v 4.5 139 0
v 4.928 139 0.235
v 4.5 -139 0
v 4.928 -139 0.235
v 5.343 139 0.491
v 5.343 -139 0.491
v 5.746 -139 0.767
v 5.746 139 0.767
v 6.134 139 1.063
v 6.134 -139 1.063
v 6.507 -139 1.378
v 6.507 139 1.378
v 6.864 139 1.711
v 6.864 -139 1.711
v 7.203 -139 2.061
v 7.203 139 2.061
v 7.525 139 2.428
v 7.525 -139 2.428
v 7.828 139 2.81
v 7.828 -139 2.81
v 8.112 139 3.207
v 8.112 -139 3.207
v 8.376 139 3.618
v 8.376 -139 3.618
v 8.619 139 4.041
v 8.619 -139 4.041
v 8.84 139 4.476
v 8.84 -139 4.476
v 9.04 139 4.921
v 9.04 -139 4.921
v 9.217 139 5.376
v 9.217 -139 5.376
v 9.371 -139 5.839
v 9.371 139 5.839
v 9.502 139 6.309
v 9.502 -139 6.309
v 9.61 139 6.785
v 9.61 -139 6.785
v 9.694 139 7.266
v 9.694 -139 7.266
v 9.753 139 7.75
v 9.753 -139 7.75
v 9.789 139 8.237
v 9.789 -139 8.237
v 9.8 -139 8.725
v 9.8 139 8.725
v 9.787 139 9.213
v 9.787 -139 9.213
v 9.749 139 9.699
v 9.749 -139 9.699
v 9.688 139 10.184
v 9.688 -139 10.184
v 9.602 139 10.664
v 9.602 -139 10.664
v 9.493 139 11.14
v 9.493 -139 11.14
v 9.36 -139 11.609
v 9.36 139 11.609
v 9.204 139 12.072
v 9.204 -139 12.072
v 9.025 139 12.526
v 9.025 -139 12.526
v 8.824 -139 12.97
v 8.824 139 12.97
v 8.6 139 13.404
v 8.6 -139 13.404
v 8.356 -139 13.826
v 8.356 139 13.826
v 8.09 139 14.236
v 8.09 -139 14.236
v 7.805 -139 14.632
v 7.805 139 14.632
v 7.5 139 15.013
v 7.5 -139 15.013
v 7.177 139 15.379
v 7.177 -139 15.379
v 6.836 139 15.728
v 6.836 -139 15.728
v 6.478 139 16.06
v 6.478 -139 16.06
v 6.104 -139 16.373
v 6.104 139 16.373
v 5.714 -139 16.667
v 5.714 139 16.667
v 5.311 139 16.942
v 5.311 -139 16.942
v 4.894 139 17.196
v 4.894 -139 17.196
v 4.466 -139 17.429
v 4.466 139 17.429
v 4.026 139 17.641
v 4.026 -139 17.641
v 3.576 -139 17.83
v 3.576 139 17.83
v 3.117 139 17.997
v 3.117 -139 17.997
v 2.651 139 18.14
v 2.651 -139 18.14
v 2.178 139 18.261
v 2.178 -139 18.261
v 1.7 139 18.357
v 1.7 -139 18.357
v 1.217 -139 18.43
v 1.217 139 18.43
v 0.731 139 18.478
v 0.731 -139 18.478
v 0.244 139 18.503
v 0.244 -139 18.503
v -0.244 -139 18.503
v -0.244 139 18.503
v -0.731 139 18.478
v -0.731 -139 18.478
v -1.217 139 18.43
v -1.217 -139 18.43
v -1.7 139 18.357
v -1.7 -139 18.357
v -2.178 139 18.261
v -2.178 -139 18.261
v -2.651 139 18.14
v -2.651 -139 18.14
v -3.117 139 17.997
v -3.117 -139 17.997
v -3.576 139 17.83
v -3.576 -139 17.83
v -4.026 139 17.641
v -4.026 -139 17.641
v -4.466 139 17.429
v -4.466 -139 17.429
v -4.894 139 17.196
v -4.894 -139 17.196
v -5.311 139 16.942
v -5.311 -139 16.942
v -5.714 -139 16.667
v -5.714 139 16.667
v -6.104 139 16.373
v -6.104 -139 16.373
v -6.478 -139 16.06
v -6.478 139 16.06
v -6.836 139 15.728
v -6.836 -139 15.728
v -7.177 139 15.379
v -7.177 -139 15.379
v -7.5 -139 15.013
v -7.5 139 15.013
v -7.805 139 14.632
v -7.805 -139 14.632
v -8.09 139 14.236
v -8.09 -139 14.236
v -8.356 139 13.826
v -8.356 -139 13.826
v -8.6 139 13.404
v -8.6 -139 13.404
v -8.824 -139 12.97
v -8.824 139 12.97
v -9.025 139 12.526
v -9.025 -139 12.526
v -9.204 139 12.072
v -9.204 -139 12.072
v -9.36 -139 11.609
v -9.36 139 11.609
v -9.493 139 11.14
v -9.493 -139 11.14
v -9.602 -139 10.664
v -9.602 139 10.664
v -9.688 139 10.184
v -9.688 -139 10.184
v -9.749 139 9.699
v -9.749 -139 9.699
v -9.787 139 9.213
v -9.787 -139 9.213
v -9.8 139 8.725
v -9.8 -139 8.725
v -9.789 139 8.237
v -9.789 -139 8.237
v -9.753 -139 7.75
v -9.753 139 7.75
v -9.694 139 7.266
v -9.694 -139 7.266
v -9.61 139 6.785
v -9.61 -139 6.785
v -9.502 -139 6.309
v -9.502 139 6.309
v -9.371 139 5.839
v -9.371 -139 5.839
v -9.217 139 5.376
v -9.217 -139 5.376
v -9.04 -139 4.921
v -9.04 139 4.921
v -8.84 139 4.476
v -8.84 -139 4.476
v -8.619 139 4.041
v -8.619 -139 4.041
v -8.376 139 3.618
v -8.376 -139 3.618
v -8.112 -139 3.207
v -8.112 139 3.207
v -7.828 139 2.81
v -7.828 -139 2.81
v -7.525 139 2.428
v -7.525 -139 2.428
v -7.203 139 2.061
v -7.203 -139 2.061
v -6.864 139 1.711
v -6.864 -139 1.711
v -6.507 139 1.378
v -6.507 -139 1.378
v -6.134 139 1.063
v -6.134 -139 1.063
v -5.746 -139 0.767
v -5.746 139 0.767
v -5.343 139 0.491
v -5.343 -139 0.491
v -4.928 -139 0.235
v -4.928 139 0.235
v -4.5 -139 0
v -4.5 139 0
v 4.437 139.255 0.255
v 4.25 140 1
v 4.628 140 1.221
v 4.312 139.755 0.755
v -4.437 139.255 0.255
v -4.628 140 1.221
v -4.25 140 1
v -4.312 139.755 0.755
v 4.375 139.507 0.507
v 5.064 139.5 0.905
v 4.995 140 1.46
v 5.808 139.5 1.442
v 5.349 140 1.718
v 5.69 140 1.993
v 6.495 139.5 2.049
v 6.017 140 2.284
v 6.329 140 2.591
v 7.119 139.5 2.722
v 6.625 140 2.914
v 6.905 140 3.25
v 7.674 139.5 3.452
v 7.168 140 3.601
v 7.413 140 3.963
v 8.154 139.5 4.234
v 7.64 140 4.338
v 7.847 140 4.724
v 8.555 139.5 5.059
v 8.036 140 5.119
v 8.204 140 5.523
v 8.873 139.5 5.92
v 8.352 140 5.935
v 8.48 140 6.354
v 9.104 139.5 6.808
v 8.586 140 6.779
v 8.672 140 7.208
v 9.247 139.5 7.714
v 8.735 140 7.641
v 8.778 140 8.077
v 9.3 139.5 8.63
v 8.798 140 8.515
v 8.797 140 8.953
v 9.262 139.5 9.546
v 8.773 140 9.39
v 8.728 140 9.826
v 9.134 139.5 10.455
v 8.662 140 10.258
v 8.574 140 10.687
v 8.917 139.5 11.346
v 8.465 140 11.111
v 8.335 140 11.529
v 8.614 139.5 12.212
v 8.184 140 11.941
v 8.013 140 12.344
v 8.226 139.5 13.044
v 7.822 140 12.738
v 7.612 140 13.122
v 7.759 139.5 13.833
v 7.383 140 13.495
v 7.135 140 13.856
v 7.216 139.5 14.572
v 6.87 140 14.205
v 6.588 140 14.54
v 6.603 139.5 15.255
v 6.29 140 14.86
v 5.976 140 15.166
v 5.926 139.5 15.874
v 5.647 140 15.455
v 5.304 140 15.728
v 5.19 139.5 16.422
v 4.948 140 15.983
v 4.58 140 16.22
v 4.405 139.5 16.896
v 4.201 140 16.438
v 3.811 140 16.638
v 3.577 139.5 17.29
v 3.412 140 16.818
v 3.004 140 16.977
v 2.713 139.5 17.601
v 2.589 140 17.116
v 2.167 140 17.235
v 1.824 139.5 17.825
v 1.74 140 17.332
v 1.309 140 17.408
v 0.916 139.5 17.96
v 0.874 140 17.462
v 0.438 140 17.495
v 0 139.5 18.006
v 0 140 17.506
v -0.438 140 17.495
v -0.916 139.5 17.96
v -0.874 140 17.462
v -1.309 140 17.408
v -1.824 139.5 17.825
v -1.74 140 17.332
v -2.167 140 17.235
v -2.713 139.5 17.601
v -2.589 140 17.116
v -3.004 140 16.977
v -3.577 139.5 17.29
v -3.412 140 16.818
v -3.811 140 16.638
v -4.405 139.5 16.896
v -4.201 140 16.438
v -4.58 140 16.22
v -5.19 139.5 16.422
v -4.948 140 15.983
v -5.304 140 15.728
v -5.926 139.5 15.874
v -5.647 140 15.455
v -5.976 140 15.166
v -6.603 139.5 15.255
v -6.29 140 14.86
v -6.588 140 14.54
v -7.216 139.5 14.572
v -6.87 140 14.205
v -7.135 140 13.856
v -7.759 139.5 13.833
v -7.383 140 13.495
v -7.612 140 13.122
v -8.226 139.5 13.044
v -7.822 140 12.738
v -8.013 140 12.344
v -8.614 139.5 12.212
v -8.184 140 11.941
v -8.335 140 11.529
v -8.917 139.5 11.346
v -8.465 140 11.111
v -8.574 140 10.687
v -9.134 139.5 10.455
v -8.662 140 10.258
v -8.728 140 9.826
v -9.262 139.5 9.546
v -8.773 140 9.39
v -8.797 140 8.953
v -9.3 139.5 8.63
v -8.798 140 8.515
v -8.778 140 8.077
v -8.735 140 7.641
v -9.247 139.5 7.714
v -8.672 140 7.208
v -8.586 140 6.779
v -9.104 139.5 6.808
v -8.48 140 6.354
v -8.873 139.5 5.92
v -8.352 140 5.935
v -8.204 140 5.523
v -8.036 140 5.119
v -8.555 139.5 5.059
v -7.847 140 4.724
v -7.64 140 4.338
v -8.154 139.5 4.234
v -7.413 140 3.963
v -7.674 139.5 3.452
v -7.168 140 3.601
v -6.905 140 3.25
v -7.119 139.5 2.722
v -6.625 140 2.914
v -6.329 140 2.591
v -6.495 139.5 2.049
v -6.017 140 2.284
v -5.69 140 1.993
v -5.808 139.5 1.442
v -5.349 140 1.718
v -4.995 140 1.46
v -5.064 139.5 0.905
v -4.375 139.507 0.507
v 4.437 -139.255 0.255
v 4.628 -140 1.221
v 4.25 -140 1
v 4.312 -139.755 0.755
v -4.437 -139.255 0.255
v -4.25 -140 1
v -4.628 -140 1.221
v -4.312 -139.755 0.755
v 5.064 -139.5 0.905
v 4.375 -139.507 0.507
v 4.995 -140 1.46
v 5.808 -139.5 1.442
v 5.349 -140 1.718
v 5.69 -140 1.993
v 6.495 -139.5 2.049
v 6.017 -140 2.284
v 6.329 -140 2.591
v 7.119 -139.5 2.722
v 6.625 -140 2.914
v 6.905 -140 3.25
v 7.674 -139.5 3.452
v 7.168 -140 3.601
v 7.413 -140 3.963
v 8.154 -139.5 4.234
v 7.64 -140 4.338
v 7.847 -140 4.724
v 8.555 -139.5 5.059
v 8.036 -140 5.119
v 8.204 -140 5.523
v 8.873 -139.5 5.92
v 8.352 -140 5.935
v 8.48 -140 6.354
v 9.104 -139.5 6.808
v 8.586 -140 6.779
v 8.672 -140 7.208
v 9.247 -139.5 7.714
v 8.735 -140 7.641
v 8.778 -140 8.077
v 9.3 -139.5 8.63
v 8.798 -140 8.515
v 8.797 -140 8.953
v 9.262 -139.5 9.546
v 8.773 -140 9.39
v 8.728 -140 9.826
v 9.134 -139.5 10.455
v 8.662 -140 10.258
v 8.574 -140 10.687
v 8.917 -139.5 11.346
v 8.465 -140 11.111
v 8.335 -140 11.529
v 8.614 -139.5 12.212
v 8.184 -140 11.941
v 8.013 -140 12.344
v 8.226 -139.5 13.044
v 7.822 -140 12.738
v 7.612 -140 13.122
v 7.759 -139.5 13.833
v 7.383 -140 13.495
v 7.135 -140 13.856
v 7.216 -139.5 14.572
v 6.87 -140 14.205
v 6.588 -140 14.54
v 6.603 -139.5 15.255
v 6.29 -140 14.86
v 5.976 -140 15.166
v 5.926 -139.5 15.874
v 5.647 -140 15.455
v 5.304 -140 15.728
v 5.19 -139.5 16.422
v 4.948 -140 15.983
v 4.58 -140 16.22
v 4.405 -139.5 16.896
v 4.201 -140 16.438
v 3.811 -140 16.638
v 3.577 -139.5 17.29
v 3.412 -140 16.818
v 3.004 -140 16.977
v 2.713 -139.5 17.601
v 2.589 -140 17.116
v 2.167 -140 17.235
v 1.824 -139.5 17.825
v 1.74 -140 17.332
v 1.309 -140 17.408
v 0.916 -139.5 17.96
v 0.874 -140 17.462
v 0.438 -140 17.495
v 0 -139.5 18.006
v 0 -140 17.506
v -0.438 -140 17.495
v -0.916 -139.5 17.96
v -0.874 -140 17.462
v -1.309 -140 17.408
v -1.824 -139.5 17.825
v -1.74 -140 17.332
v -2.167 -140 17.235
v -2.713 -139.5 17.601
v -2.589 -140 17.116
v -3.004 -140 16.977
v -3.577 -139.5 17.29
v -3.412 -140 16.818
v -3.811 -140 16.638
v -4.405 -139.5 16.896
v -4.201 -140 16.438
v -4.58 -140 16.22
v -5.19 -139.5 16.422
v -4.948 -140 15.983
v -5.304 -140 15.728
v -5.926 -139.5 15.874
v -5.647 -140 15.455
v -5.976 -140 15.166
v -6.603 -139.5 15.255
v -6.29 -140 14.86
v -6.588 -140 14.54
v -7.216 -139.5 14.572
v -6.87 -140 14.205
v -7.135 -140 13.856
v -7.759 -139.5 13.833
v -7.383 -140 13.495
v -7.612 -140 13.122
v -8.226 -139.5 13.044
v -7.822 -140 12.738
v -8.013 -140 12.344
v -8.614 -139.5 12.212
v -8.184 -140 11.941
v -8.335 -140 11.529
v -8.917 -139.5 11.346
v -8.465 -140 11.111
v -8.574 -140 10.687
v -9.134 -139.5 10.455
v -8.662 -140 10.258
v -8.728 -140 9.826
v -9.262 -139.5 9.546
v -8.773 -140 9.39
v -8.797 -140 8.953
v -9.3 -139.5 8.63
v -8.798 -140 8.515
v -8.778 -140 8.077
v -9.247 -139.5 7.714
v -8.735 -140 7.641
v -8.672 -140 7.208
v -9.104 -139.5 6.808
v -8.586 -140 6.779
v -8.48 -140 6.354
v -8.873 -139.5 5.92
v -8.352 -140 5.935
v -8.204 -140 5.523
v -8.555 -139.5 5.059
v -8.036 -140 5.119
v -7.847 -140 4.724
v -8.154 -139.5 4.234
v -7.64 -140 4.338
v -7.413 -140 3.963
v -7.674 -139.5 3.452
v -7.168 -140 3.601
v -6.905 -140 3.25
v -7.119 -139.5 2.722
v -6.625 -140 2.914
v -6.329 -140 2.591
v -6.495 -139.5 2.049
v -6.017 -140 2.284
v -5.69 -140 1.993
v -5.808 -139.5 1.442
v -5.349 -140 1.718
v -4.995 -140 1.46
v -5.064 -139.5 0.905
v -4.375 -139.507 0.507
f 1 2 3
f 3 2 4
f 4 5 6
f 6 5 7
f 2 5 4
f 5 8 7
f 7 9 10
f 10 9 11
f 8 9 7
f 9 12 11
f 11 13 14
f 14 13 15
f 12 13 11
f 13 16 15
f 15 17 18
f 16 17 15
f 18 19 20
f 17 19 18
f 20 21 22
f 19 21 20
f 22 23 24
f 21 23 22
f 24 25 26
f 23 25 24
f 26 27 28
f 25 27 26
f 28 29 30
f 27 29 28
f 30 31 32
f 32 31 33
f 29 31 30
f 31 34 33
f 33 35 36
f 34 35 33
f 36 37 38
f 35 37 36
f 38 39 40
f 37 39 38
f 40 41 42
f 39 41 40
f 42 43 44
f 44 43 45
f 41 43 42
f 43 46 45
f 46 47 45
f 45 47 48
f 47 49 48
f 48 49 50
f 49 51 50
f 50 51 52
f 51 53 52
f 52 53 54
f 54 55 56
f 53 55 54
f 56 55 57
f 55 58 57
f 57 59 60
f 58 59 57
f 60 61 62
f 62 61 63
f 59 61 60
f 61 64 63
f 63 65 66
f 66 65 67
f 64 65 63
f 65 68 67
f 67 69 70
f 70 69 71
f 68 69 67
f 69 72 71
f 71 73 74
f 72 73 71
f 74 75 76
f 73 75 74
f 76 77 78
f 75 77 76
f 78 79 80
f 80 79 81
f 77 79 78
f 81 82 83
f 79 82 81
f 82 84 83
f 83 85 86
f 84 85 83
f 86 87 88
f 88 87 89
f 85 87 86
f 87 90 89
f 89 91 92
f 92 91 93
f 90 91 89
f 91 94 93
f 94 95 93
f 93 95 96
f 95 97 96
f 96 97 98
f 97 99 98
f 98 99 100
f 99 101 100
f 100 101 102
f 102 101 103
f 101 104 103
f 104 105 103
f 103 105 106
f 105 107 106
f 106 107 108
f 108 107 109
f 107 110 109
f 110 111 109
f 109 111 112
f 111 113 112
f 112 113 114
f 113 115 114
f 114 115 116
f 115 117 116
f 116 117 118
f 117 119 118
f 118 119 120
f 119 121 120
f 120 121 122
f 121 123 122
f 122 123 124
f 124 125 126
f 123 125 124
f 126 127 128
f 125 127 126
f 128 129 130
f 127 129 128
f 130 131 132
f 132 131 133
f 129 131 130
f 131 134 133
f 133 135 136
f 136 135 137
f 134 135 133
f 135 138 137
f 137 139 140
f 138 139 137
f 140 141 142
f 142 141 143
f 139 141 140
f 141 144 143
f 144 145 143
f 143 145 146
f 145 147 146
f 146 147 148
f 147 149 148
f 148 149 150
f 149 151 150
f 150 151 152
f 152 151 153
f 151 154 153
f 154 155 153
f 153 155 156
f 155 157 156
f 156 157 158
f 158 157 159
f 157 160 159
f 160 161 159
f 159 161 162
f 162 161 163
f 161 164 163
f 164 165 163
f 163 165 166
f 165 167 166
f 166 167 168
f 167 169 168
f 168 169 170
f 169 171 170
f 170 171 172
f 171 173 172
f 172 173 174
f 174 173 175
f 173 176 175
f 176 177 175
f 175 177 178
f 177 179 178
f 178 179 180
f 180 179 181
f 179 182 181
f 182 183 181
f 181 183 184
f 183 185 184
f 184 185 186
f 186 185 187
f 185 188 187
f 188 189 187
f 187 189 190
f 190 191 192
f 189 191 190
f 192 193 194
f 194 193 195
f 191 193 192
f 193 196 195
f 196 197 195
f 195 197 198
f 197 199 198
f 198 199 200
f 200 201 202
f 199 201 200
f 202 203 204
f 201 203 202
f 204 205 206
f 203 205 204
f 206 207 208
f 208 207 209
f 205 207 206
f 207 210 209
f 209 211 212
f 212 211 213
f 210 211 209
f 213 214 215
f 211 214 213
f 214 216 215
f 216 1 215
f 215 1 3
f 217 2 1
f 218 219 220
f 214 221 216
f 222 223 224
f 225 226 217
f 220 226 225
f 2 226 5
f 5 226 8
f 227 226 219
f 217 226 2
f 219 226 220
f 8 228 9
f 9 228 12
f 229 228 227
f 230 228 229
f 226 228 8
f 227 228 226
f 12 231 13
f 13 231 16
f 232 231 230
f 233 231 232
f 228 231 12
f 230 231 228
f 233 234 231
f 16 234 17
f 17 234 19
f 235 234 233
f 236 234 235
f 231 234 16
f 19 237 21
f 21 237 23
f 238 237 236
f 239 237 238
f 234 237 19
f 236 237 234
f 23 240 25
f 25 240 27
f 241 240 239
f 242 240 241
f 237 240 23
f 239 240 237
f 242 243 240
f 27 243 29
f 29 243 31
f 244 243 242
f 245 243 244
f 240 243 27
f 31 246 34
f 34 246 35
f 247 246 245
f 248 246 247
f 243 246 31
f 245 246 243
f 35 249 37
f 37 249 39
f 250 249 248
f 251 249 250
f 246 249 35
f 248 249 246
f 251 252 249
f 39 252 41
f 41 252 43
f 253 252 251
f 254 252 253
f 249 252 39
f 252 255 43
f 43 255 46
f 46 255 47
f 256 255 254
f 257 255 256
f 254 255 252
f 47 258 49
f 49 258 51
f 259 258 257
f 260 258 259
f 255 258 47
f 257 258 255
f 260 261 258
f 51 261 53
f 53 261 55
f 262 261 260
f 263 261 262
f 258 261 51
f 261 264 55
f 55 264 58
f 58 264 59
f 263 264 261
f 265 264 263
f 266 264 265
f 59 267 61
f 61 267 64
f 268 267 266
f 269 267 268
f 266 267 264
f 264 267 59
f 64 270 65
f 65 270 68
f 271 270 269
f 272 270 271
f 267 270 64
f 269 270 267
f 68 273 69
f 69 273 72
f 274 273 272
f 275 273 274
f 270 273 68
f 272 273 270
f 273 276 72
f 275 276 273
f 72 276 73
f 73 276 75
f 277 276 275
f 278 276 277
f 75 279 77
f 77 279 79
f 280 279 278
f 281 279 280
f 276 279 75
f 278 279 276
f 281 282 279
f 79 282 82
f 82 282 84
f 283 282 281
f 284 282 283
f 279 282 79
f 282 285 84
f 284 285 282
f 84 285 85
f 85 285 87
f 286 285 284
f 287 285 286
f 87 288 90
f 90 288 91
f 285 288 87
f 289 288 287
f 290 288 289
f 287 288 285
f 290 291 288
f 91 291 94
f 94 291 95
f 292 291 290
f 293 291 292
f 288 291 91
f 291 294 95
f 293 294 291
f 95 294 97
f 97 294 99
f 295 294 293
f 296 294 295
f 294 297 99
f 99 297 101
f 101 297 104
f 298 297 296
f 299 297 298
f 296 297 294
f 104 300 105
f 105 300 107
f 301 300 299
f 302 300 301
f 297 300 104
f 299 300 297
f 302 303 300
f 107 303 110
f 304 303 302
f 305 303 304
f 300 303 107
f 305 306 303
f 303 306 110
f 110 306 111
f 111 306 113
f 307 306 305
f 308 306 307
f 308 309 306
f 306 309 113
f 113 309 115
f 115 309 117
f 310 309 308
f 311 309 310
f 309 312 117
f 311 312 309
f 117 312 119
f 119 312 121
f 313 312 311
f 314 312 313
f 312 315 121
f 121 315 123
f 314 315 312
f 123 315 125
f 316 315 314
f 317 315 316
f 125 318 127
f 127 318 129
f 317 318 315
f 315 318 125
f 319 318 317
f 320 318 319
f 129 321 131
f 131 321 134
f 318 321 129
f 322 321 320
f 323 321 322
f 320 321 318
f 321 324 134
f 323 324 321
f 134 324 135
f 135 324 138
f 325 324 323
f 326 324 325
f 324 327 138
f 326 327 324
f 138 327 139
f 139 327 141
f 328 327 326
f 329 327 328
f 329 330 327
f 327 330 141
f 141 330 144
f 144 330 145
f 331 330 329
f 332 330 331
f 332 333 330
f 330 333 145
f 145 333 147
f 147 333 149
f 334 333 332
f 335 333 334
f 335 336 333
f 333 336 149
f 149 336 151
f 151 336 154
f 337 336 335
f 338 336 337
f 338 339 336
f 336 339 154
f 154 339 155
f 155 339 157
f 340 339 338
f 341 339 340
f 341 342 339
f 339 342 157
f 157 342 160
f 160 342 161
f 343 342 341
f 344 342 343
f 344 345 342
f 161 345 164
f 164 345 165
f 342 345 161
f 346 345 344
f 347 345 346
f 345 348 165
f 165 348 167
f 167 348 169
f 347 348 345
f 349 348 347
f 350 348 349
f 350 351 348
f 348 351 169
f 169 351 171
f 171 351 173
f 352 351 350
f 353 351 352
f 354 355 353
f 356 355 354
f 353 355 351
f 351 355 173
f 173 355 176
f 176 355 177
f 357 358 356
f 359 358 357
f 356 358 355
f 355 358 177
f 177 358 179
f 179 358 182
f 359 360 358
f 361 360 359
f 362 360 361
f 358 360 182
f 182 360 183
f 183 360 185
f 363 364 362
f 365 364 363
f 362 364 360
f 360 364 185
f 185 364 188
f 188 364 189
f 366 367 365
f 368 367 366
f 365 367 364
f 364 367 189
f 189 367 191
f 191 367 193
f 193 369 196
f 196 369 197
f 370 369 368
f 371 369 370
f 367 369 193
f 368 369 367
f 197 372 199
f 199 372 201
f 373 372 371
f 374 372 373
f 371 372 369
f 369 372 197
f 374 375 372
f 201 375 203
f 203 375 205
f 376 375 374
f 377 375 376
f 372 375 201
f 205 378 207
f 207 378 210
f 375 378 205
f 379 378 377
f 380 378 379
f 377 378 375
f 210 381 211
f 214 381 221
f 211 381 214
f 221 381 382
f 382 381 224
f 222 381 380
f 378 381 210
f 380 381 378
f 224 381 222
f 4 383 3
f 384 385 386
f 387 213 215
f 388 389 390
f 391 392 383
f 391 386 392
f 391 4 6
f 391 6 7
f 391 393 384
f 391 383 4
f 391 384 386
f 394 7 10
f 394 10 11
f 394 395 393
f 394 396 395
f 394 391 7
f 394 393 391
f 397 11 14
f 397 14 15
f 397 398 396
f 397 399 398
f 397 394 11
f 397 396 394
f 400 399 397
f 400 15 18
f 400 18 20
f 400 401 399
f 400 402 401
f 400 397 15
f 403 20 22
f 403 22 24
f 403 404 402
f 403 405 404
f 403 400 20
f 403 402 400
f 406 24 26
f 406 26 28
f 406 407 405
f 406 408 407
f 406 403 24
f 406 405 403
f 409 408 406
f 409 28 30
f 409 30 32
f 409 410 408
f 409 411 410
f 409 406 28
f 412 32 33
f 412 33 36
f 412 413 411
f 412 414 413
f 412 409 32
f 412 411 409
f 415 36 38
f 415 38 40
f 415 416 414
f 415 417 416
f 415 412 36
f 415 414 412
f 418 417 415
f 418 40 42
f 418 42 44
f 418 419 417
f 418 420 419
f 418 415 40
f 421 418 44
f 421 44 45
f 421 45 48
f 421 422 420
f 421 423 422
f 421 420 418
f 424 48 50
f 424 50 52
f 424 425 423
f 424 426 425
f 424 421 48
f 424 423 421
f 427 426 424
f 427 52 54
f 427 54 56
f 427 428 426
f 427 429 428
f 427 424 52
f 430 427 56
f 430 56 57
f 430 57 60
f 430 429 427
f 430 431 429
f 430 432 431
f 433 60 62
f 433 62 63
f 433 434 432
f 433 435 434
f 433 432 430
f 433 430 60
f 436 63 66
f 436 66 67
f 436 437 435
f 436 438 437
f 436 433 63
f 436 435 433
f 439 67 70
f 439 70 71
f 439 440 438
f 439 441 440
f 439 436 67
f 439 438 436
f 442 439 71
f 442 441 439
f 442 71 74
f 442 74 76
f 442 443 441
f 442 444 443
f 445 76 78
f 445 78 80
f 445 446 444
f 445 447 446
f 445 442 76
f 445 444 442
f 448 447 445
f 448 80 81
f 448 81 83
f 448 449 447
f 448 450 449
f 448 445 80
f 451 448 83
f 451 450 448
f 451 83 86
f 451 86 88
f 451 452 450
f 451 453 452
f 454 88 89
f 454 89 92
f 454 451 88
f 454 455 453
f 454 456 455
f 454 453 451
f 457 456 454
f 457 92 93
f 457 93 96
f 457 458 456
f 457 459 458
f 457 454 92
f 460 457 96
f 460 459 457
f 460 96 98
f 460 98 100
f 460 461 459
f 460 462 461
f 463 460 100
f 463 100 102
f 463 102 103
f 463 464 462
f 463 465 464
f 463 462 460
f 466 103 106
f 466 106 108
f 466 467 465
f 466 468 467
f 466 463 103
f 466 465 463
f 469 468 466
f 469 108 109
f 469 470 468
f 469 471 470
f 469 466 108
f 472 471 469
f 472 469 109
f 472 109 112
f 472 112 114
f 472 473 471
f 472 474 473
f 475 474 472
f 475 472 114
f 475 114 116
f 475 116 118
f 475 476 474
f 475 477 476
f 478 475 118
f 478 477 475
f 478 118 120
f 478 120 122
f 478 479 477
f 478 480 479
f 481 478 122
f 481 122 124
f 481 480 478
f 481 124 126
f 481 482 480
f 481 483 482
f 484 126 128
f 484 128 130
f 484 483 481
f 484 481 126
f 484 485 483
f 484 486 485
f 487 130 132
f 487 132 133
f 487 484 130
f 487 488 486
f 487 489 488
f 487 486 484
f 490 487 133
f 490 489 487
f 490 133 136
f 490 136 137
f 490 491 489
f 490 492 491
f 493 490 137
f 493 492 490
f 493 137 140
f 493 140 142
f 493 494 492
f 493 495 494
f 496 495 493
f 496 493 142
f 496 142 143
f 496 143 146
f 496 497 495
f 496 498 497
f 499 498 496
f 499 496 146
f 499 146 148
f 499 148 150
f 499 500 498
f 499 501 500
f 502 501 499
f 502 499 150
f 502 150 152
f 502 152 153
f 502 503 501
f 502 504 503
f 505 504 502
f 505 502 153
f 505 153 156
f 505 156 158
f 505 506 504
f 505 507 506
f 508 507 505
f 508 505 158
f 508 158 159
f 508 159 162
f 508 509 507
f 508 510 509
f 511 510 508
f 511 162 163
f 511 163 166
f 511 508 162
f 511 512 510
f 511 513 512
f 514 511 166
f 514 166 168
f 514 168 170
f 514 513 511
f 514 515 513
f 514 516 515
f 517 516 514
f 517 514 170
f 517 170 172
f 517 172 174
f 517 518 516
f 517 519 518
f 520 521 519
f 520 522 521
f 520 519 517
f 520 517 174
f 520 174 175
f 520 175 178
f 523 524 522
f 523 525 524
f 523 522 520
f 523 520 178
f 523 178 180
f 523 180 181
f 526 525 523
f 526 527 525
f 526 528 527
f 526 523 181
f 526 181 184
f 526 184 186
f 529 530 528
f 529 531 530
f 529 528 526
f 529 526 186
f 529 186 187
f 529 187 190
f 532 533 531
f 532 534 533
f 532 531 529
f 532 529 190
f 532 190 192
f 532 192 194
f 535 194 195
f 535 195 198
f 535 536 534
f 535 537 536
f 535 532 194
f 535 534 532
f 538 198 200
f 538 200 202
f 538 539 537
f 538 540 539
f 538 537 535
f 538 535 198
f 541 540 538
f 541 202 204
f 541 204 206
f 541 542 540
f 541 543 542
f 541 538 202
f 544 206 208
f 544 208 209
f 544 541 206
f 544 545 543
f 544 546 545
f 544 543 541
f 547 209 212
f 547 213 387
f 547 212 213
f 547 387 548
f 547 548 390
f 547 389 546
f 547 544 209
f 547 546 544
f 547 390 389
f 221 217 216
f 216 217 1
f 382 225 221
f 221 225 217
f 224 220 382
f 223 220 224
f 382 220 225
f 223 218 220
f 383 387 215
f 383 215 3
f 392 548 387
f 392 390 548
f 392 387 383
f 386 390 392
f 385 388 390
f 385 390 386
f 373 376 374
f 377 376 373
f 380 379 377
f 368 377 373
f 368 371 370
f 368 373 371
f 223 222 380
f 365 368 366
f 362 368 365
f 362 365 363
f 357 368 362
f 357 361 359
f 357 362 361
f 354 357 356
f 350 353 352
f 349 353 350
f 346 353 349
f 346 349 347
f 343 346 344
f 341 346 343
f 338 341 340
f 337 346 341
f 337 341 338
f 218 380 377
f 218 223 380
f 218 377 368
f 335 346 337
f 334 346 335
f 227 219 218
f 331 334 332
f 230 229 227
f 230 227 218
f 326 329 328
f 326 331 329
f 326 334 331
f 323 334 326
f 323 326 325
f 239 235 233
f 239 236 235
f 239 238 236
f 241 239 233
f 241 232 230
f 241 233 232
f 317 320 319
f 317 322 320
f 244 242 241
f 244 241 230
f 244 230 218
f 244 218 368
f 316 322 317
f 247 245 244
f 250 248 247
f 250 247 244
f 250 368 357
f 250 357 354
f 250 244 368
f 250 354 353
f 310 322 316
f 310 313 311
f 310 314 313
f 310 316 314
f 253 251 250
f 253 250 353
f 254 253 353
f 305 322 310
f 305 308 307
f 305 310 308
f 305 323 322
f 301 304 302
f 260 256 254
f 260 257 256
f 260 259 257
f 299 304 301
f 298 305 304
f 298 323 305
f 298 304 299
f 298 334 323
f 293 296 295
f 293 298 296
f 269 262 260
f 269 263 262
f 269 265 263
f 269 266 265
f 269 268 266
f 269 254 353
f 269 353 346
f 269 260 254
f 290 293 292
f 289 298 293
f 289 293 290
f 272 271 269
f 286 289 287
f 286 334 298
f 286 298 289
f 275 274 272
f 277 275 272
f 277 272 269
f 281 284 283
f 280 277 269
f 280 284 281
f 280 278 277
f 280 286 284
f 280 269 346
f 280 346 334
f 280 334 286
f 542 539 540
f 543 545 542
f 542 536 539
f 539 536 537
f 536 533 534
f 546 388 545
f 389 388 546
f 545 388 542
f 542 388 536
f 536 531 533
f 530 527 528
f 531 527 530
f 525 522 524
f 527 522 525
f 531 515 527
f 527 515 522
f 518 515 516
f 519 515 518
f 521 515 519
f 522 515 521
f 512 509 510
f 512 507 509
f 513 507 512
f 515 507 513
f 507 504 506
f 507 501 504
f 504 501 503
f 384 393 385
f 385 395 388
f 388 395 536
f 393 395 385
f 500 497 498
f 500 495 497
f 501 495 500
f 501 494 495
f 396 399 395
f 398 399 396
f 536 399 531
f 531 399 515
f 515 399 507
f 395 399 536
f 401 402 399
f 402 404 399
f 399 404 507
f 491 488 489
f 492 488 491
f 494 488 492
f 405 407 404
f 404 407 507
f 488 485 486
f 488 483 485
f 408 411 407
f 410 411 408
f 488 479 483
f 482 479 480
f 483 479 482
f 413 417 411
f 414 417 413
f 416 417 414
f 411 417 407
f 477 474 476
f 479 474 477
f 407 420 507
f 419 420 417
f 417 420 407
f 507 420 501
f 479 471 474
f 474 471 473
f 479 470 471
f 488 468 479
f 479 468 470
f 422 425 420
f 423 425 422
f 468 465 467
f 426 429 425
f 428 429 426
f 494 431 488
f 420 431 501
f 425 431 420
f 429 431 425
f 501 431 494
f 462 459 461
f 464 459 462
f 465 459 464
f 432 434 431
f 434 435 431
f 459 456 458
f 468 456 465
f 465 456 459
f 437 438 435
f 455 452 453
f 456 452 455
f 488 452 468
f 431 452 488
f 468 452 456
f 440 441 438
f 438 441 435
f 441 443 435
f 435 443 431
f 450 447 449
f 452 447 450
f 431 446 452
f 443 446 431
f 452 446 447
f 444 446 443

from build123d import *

# Parameters (mm, degrees)
PAD_DEPTH    = 140
CHAMFER_SIZE = 1


with BuildPart() as part:
    # Sketch → Pad (new body, symmetric)
    with BuildSketch(Plane.XZ):
        with BuildLine():
            ThreePointArc((4.5, 0), (0, 18.505745), (-4.5, 0))
            Line((-4.5, 0), (4.5, 0))
        make_face()
    extrude(amount=PAD_DEPTH, both=True)

    # Chamfer
    chamfer_edges = [part.edges().sort_by_distance(p)[0] for p in [
        (0, -140, 18.505745),
        (0, -140, 0),
        (0, 140, 18.505745),
        (0, 140, 0),
    ]]
    chamfer(chamfer_edges, length=CHAMFER_SIZE)


solid = part.part
